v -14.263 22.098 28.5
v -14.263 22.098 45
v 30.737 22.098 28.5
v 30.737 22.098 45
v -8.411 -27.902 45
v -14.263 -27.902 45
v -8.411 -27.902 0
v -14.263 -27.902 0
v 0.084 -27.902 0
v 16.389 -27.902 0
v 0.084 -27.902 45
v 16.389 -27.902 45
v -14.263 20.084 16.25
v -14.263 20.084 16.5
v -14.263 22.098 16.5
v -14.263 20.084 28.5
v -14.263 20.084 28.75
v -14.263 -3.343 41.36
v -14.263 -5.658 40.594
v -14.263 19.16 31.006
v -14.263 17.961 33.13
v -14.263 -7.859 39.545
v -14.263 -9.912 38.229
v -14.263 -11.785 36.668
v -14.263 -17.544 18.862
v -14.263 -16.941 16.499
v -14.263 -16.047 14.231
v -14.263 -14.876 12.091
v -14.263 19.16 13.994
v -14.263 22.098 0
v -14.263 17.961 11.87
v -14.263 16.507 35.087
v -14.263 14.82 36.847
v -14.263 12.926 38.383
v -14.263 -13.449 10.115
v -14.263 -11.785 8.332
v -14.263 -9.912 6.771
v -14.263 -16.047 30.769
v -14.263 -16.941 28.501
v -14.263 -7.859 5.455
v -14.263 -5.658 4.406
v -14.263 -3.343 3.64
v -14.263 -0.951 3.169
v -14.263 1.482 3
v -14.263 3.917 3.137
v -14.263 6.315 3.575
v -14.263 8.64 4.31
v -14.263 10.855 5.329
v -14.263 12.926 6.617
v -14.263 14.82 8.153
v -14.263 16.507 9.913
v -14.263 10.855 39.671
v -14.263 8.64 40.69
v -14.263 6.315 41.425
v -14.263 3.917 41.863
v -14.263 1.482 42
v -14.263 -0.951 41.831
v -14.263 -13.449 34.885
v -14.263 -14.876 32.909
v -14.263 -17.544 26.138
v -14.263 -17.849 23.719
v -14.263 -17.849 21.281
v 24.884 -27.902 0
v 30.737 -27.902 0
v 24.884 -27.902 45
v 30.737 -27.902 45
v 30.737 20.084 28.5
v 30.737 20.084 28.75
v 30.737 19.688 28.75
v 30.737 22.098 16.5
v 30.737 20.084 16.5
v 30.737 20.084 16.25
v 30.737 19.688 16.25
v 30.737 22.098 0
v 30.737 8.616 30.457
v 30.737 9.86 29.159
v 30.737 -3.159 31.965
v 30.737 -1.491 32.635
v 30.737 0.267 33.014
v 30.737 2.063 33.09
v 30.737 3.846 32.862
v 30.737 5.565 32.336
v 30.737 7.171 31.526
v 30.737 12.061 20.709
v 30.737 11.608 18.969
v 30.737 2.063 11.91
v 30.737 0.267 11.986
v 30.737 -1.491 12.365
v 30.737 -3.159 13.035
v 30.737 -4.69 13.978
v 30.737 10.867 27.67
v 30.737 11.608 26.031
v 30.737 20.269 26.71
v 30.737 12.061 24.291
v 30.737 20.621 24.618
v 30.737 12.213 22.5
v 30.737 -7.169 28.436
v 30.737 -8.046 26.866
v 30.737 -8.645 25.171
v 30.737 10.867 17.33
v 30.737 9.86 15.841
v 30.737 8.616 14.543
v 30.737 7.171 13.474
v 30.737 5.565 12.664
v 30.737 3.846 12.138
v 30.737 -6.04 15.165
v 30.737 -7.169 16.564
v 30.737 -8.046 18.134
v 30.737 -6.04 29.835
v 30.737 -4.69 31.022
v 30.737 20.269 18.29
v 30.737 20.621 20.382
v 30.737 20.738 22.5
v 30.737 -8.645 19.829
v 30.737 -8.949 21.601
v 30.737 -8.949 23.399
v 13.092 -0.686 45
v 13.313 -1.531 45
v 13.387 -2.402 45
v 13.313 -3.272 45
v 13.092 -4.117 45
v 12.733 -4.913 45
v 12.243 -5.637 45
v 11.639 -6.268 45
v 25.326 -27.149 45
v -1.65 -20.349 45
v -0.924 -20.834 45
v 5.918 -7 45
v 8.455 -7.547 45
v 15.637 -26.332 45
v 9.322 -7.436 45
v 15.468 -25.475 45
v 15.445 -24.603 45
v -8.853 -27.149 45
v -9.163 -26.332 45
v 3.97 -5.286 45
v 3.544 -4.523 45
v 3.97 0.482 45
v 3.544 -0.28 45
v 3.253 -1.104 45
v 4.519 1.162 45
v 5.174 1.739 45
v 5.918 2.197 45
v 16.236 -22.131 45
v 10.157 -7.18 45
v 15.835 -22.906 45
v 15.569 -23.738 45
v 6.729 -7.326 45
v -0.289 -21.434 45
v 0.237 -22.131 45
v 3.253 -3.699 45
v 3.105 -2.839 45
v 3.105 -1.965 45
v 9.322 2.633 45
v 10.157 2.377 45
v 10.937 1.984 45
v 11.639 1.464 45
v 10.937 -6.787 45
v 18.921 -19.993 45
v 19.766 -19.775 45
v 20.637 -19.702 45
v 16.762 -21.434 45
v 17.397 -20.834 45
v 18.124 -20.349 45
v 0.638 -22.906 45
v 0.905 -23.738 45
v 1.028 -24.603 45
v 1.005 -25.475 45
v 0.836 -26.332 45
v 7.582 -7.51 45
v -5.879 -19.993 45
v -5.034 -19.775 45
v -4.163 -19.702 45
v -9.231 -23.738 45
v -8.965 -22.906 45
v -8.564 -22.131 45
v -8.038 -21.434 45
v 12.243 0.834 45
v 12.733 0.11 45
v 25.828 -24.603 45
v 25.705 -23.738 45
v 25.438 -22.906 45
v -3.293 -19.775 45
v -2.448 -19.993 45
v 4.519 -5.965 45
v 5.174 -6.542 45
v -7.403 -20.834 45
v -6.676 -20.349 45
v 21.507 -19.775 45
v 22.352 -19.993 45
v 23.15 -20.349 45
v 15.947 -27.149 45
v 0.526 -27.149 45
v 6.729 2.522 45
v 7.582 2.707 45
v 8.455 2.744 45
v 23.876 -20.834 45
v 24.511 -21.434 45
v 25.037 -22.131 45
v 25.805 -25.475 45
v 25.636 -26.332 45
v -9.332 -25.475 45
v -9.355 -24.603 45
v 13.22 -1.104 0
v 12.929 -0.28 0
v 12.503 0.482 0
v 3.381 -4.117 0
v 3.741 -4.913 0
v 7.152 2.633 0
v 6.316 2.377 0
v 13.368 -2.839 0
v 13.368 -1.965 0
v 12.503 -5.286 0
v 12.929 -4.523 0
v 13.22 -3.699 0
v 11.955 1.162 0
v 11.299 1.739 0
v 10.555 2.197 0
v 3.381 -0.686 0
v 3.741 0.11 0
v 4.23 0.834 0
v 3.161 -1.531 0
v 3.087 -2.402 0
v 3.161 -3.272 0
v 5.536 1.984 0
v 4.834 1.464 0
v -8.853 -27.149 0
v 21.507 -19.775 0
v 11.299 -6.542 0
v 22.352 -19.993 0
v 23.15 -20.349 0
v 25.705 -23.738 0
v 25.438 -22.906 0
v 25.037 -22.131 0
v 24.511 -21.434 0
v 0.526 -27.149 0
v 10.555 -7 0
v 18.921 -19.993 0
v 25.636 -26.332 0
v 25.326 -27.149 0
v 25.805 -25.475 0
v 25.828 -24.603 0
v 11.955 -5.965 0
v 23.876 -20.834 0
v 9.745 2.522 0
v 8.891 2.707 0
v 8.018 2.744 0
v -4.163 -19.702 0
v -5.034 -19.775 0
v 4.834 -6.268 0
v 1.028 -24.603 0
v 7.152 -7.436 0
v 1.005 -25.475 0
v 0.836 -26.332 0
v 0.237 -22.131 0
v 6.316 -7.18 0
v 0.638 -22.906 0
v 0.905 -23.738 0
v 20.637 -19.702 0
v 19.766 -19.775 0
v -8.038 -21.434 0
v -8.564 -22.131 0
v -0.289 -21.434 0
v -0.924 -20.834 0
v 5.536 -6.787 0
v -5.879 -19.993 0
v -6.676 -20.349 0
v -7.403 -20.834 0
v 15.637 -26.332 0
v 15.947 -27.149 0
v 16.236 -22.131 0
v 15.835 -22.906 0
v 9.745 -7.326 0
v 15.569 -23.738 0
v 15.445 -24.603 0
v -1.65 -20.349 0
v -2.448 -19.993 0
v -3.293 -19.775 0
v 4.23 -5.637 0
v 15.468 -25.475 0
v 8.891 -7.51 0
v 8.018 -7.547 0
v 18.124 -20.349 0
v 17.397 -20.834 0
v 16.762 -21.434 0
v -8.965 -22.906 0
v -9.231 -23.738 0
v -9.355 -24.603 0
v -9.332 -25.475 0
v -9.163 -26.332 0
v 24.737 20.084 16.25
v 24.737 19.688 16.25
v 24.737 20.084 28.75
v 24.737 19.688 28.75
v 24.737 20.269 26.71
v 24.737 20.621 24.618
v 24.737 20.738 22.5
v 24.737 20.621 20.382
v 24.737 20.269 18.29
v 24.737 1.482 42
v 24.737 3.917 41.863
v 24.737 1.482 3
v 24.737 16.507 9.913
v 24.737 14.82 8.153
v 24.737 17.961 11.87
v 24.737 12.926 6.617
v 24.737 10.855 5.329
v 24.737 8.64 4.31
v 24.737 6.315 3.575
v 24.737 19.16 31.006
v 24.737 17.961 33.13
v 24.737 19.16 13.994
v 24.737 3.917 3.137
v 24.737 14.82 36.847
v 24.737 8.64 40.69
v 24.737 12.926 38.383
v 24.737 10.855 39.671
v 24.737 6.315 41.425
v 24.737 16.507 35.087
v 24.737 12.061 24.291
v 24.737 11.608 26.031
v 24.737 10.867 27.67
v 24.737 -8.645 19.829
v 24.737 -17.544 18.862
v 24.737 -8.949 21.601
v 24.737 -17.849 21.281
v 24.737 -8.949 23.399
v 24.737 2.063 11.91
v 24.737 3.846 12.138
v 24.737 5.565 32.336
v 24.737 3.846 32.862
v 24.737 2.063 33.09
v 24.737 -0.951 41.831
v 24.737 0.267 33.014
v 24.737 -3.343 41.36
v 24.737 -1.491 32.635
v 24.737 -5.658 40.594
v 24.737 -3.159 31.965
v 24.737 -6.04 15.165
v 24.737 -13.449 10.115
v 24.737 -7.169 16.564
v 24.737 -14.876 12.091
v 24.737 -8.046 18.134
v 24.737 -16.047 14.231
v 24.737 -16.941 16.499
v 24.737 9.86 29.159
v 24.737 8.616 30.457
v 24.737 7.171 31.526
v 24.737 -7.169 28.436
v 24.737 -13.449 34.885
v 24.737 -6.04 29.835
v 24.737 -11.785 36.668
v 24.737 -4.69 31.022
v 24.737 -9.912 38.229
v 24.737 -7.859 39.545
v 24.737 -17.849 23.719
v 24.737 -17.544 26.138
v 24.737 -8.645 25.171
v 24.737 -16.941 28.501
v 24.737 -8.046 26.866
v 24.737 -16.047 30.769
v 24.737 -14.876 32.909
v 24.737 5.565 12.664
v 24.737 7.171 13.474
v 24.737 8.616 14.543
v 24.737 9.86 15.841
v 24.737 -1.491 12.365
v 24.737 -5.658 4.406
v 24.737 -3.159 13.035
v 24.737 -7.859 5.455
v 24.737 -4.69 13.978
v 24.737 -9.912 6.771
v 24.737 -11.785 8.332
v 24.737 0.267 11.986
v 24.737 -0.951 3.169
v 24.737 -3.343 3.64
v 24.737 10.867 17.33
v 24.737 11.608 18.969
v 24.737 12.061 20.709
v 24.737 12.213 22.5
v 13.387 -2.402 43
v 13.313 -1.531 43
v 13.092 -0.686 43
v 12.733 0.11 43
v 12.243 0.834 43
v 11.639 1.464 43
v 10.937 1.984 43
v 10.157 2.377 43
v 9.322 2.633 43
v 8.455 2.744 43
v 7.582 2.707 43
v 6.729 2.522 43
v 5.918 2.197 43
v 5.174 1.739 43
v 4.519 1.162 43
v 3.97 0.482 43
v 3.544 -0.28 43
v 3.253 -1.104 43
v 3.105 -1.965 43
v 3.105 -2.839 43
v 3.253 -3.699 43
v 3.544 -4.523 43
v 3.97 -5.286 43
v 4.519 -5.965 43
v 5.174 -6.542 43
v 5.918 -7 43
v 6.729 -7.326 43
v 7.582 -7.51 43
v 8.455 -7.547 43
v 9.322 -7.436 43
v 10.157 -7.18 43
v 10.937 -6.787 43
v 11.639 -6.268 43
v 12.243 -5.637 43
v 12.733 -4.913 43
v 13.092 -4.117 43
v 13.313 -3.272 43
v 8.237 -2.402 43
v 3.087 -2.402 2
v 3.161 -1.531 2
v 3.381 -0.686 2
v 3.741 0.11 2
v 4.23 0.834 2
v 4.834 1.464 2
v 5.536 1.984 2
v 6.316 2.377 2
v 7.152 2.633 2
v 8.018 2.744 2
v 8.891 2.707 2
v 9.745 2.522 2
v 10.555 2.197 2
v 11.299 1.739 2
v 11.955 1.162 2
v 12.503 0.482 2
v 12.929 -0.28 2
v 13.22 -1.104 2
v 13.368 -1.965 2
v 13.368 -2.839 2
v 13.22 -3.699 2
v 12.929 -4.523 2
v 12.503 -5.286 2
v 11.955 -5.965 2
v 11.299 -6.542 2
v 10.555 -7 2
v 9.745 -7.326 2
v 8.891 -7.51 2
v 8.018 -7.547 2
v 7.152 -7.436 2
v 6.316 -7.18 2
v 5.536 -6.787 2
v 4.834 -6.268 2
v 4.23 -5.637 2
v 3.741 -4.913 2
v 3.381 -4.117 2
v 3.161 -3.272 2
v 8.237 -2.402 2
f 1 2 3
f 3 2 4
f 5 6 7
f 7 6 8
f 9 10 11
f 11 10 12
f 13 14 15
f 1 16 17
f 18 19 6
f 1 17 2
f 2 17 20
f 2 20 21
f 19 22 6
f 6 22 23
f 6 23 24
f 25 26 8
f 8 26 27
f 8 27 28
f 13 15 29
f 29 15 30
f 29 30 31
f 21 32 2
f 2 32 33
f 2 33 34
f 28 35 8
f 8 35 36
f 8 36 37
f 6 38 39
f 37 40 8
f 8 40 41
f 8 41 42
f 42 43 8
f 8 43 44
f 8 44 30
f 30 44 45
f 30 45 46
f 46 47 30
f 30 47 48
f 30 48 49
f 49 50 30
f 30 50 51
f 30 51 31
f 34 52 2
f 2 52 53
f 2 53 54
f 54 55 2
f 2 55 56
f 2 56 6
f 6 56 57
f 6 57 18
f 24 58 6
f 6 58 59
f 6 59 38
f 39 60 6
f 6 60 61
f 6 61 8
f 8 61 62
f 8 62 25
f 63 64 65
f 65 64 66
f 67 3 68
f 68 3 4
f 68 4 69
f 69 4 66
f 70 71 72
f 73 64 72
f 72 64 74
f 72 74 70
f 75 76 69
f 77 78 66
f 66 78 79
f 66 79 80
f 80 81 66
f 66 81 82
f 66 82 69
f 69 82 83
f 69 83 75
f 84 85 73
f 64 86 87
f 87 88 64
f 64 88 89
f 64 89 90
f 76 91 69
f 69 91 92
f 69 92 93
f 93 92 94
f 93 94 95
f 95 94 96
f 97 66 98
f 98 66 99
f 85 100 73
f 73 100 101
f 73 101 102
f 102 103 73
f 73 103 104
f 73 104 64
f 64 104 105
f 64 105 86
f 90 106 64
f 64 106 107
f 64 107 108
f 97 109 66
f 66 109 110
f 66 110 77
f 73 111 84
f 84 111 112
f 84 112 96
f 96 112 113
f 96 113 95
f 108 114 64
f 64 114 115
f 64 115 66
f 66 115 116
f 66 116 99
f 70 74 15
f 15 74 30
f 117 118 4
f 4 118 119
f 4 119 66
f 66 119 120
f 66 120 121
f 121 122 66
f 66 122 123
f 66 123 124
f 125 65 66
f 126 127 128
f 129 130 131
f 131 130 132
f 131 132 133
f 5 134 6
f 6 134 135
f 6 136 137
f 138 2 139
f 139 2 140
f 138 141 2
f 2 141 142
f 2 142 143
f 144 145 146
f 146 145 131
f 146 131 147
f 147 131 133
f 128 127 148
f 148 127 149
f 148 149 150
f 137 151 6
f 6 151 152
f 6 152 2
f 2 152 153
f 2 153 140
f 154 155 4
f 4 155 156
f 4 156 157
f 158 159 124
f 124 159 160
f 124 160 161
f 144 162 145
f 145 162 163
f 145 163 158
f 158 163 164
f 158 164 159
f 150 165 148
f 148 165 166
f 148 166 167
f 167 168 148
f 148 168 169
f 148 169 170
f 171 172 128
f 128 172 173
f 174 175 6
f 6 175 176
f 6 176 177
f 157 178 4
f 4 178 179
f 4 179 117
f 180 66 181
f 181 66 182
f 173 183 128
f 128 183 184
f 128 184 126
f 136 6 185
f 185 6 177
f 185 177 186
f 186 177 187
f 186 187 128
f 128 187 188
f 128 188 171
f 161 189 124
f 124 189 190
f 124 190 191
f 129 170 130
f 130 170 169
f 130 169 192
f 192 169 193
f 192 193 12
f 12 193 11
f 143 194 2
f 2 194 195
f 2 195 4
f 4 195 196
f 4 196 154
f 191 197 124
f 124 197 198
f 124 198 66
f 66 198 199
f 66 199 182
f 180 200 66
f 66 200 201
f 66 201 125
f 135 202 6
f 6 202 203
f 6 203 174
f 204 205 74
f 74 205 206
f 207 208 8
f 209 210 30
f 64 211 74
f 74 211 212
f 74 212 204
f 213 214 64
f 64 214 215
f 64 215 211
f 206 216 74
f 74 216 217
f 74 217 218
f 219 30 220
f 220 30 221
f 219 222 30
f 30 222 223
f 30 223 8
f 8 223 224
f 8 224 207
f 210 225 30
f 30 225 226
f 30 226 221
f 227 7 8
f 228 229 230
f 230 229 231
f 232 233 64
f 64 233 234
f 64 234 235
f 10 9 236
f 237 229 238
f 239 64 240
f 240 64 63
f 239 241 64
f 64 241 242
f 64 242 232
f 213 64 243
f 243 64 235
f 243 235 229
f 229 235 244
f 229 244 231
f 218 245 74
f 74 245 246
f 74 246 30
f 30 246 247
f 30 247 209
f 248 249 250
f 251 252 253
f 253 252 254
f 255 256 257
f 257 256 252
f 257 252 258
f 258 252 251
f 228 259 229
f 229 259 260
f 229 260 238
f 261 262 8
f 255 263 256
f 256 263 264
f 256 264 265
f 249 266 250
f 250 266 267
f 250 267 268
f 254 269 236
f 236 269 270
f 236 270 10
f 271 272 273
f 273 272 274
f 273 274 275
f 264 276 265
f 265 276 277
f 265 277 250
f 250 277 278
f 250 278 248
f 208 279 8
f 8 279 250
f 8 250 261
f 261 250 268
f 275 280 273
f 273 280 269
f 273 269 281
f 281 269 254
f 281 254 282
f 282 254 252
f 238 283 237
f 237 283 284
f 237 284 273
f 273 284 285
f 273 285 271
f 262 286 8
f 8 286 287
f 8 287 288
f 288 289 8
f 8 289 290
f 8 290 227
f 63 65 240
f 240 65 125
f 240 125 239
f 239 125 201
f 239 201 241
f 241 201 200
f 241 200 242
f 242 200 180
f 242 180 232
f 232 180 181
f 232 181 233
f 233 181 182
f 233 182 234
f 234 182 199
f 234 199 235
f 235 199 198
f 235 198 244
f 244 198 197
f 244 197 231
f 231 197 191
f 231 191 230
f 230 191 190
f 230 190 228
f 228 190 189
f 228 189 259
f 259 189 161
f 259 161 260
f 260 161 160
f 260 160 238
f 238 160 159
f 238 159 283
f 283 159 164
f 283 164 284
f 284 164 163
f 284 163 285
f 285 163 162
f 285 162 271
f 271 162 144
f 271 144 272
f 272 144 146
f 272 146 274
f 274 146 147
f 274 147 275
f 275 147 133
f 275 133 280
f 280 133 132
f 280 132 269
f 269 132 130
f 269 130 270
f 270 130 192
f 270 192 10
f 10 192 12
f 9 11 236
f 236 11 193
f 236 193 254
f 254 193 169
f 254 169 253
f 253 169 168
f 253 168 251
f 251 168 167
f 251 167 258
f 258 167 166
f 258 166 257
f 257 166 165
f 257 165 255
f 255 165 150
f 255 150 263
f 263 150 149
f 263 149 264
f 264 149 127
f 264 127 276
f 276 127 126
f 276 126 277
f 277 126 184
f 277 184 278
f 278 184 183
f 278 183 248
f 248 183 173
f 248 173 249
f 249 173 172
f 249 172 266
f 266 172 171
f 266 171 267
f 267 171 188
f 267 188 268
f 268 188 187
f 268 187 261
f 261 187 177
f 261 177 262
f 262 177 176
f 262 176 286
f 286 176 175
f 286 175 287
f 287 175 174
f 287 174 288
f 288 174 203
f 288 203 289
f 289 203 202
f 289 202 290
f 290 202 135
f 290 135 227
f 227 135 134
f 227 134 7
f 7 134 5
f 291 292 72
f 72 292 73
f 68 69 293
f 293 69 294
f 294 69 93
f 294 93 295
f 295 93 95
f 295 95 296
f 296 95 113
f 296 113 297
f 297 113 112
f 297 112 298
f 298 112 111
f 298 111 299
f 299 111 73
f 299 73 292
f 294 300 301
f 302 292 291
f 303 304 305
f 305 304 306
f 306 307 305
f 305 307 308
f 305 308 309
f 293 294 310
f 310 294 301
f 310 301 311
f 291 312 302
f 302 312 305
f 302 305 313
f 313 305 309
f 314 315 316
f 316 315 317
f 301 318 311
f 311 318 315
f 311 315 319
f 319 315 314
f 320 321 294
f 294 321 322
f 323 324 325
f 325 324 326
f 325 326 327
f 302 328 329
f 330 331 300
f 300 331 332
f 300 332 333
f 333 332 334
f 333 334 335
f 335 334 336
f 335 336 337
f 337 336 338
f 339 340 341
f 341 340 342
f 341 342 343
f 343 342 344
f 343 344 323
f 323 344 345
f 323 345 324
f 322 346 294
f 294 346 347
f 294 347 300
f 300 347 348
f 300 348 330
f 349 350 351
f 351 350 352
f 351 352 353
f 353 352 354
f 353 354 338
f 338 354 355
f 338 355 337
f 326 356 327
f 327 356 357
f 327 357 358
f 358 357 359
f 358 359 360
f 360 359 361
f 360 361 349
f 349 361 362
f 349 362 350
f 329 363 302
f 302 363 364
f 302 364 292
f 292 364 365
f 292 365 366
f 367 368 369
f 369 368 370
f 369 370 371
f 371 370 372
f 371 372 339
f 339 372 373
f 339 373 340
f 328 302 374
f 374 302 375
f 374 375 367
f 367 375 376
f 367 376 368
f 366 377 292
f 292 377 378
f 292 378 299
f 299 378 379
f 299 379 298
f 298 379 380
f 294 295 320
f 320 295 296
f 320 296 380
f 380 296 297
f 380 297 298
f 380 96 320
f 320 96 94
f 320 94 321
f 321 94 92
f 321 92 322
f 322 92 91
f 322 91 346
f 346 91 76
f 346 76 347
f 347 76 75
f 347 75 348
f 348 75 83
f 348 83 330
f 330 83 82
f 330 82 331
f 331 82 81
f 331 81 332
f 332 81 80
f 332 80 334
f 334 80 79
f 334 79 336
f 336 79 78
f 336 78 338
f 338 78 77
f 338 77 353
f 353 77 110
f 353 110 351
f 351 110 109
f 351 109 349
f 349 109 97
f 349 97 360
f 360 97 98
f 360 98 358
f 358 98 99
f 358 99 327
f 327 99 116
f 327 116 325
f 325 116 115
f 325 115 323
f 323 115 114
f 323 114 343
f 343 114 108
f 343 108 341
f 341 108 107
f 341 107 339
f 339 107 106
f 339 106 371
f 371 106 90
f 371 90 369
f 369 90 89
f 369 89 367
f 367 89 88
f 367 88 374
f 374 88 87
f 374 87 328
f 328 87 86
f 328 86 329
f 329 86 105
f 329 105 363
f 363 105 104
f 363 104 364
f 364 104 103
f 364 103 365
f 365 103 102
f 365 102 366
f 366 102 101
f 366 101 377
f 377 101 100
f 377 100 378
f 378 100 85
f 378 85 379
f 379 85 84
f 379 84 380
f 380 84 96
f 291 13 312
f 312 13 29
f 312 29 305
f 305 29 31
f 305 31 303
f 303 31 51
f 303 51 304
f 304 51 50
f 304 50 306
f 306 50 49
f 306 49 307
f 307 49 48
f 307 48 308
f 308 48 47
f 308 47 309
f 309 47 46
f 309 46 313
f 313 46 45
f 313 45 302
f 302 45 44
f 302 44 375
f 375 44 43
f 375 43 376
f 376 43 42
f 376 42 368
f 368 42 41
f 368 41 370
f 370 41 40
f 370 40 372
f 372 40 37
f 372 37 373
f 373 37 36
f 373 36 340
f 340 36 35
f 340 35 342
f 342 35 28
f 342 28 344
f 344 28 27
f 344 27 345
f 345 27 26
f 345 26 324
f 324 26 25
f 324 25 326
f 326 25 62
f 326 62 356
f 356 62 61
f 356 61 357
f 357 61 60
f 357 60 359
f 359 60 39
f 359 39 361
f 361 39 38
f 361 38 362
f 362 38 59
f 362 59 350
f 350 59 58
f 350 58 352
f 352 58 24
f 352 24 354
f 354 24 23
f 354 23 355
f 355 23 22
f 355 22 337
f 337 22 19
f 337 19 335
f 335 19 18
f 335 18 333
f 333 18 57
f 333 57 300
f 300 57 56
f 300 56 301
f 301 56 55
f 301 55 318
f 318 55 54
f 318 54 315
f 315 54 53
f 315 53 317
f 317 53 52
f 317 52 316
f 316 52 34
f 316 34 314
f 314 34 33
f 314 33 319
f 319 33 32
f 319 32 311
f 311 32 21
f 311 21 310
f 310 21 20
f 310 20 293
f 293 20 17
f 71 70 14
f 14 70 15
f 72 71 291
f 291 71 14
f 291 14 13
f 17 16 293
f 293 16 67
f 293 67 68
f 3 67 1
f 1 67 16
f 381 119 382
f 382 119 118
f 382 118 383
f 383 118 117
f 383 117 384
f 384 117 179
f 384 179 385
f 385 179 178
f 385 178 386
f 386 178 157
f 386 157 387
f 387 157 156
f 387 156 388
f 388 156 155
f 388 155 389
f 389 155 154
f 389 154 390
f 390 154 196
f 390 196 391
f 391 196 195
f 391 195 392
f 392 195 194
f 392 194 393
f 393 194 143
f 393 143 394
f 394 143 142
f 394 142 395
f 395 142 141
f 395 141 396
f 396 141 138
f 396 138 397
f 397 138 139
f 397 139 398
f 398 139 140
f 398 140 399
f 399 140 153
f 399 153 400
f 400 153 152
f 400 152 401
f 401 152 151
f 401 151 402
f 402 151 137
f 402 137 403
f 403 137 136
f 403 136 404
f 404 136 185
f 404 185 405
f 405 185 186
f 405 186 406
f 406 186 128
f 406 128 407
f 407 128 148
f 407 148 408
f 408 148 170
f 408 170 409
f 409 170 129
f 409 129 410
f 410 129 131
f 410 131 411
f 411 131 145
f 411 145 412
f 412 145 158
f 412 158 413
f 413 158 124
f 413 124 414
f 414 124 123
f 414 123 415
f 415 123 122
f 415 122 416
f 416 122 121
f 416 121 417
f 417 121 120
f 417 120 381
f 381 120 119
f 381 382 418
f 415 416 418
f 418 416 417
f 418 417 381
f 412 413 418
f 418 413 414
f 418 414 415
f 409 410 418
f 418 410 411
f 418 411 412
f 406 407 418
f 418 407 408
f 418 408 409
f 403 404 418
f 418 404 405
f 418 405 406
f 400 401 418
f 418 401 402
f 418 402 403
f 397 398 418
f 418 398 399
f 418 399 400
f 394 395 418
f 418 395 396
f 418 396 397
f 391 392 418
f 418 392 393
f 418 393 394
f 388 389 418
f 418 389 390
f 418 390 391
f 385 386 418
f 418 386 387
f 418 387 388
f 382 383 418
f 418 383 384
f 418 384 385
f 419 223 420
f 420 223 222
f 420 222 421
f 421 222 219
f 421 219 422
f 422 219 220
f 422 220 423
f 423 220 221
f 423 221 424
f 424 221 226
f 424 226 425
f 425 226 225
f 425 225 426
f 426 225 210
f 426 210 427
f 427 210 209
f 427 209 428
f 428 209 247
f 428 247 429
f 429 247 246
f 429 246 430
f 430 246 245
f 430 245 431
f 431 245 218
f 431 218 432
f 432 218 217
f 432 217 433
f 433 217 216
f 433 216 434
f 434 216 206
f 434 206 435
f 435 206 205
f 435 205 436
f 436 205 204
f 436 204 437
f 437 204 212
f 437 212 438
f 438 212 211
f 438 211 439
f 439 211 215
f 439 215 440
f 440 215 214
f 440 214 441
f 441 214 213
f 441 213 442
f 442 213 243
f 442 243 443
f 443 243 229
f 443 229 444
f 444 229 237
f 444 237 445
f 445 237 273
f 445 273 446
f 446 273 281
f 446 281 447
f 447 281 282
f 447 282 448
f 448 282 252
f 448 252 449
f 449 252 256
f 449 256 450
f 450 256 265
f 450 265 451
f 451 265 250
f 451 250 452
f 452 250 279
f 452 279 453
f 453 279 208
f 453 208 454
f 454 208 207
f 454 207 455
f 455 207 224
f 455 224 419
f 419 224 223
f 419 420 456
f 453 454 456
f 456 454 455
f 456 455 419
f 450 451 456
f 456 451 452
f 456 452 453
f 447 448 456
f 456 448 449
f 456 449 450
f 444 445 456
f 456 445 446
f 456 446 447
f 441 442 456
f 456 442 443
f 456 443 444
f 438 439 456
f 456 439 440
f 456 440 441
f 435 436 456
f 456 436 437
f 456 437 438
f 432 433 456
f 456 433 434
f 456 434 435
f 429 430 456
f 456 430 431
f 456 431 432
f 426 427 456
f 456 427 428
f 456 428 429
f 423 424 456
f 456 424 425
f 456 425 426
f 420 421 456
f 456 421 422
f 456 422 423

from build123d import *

# Parameters (mm, degrees)
SKETCH1_W           = 45
SKETCH1_H           = 50
BOSS_EXTRUDE1_DEPTH = 45
SKETCH2_R           = 5.2
CUT_EXTRUDE1_DEPTH  = 45
SKETCH3_R           = 19.125
CUT_EXTRUDE2_DEPTH  = 45
SKETCH4_W           = 12.5
SKETCH4_H           = 4.851403087
CUT_EXTRUDE3_DEPTH  = 45
SKETCH5_R           = 19.125
BOSS_EXTRUDE2_DEPTH = 6
SKETCH6_R           = 10.6
CUT_EXTRUDE4_DEPTH  = 6
SKETCH7_R           = 19.5
CUT_EXTRUDE5_DEPTH  = 39
SKETCH8_W           = 0.25
SKETCH8_H           = 2.013794316
BOSS_EXTRUDE3_DEPTH = 45
SKETCH9_R           = 5.15
CUT_EXTRUDE6_DEPTH  = 2
SKETCH10_R          = 5.15
CUT_EXTRUDE7_DEPTH  = 2


with BuildPart() as part:
    # Sketch1 → Boss-Extrude1 (new body)
    with BuildSketch(Plane.XY):
        with Locations((8.236607143, -2.901785714)):
            Rectangle(SKETCH1_W, SKETCH1_H)
    extrude(amount=BOSS_EXTRUDE1_DEPTH)

    # Sketch2 → Cut-Extrude1 (cut)
    with BuildSketch(Plane.XY.offset(45)):
        with Locations((-4.163392857, -24.901785714)):
            Circle(SKETCH2_R)
        with Locations((20.636607143, -24.901785714)):
            Circle(SKETCH2_R)
    extrude(amount=-CUT_EXTRUDE1_DEPTH, mode=Mode.SUBTRACT)

    # Sketch3 → Cut-Extrude2 (cut)
    with BuildSketch(Plane(origin=(30.736607143, 0, 0), x_dir=(0, 0, -1), z_dir=(1, 0, 0))):
        with Locations((-22.5, 1.613158508)):
            Circle(SKETCH3_R)
    extrude(amount=-CUT_EXTRUDE2_DEPTH, mode=Mode.SUBTRACT)

    # Sketch4 → Cut-Extrude3 (cut)
    with BuildSketch(Plane(origin=(30.736607143, 0, 0), x_dir=(0, 0, -1), z_dir=(1, 0, 0))):
        with Locations((-22.5, 20.946020309)):
            Rectangle(SKETCH4_W, SKETCH4_H)
    extrude(amount=-CUT_EXTRUDE3_DEPTH, mode=Mode.SUBTRACT)

    # Sketch5 → Boss-Extrude2 (add)
    with BuildSketch(Plane(origin=(30.736607143, 0, 0), x_dir=(0, 0, -1), z_dir=(1, 0, 0))):
        with Locations((-22.5, 1.613158508)):
            Circle(SKETCH5_R)
    extrude(amount=-BOSS_EXTRUDE2_DEPTH)

    # Sketch6 → Cut-Extrude4 (cut)
    with BuildSketch(Plane(origin=(30.736607143, 0, 0), x_dir=(0, 0, -1), z_dir=(1, 0, 0))):
        with Locations((-22.5, 1.613158508)):
            Circle(SKETCH6_R)
    extrude(amount=-CUT_EXTRUDE4_DEPTH, mode=Mode.SUBTRACT)

    # Sketch7 → Cut-Extrude5 (cut)
    with BuildSketch(Plane.ZY.offset(14.263392857)):
        with Locations((22.5, 1.613158508)):
            Circle(SKETCH7_R)
    extrude(amount=-CUT_EXTRUDE5_DEPTH, mode=Mode.SUBTRACT)

    # Sketch8 → Boss-Extrude3 (add)
    with BuildSketch(Plane.ZY.offset(14.263392857)):
        with Locations((16.375, 21.091317128)):
            Rectangle(SKETCH8_W, SKETCH8_H)
        with Locations((28.625, 21.091317128)):
            Rectangle(SKETCH8_W, SKETCH8_H)
    extrude(amount=-BOSS_EXTRUDE3_DEPTH)

    # Sketch9 → Cut-Extrude6 (cut)
    with BuildSketch(Plane.XY.offset(45)):
        with Locations((8.236607143, -2.401785714)):
            Circle(SKETCH9_R)
    extrude(amount=-CUT_EXTRUDE6_DEPTH, mode=Mode.SUBTRACT)

    # Sketch10 → Cut-Extrude7 (cut)
    with BuildSketch(Plane(origin=(0, 0, 0), x_dir=(-1, 0, 0), z_dir=(0, 0, -1))):
        with Locations((-8.236607143, -2.401785714)):
            Circle(SKETCH10_R)
    extrude(amount=-CUT_EXTRUDE7_DEPTH, mode=Mode.SUBTRACT)


solid = part.part
